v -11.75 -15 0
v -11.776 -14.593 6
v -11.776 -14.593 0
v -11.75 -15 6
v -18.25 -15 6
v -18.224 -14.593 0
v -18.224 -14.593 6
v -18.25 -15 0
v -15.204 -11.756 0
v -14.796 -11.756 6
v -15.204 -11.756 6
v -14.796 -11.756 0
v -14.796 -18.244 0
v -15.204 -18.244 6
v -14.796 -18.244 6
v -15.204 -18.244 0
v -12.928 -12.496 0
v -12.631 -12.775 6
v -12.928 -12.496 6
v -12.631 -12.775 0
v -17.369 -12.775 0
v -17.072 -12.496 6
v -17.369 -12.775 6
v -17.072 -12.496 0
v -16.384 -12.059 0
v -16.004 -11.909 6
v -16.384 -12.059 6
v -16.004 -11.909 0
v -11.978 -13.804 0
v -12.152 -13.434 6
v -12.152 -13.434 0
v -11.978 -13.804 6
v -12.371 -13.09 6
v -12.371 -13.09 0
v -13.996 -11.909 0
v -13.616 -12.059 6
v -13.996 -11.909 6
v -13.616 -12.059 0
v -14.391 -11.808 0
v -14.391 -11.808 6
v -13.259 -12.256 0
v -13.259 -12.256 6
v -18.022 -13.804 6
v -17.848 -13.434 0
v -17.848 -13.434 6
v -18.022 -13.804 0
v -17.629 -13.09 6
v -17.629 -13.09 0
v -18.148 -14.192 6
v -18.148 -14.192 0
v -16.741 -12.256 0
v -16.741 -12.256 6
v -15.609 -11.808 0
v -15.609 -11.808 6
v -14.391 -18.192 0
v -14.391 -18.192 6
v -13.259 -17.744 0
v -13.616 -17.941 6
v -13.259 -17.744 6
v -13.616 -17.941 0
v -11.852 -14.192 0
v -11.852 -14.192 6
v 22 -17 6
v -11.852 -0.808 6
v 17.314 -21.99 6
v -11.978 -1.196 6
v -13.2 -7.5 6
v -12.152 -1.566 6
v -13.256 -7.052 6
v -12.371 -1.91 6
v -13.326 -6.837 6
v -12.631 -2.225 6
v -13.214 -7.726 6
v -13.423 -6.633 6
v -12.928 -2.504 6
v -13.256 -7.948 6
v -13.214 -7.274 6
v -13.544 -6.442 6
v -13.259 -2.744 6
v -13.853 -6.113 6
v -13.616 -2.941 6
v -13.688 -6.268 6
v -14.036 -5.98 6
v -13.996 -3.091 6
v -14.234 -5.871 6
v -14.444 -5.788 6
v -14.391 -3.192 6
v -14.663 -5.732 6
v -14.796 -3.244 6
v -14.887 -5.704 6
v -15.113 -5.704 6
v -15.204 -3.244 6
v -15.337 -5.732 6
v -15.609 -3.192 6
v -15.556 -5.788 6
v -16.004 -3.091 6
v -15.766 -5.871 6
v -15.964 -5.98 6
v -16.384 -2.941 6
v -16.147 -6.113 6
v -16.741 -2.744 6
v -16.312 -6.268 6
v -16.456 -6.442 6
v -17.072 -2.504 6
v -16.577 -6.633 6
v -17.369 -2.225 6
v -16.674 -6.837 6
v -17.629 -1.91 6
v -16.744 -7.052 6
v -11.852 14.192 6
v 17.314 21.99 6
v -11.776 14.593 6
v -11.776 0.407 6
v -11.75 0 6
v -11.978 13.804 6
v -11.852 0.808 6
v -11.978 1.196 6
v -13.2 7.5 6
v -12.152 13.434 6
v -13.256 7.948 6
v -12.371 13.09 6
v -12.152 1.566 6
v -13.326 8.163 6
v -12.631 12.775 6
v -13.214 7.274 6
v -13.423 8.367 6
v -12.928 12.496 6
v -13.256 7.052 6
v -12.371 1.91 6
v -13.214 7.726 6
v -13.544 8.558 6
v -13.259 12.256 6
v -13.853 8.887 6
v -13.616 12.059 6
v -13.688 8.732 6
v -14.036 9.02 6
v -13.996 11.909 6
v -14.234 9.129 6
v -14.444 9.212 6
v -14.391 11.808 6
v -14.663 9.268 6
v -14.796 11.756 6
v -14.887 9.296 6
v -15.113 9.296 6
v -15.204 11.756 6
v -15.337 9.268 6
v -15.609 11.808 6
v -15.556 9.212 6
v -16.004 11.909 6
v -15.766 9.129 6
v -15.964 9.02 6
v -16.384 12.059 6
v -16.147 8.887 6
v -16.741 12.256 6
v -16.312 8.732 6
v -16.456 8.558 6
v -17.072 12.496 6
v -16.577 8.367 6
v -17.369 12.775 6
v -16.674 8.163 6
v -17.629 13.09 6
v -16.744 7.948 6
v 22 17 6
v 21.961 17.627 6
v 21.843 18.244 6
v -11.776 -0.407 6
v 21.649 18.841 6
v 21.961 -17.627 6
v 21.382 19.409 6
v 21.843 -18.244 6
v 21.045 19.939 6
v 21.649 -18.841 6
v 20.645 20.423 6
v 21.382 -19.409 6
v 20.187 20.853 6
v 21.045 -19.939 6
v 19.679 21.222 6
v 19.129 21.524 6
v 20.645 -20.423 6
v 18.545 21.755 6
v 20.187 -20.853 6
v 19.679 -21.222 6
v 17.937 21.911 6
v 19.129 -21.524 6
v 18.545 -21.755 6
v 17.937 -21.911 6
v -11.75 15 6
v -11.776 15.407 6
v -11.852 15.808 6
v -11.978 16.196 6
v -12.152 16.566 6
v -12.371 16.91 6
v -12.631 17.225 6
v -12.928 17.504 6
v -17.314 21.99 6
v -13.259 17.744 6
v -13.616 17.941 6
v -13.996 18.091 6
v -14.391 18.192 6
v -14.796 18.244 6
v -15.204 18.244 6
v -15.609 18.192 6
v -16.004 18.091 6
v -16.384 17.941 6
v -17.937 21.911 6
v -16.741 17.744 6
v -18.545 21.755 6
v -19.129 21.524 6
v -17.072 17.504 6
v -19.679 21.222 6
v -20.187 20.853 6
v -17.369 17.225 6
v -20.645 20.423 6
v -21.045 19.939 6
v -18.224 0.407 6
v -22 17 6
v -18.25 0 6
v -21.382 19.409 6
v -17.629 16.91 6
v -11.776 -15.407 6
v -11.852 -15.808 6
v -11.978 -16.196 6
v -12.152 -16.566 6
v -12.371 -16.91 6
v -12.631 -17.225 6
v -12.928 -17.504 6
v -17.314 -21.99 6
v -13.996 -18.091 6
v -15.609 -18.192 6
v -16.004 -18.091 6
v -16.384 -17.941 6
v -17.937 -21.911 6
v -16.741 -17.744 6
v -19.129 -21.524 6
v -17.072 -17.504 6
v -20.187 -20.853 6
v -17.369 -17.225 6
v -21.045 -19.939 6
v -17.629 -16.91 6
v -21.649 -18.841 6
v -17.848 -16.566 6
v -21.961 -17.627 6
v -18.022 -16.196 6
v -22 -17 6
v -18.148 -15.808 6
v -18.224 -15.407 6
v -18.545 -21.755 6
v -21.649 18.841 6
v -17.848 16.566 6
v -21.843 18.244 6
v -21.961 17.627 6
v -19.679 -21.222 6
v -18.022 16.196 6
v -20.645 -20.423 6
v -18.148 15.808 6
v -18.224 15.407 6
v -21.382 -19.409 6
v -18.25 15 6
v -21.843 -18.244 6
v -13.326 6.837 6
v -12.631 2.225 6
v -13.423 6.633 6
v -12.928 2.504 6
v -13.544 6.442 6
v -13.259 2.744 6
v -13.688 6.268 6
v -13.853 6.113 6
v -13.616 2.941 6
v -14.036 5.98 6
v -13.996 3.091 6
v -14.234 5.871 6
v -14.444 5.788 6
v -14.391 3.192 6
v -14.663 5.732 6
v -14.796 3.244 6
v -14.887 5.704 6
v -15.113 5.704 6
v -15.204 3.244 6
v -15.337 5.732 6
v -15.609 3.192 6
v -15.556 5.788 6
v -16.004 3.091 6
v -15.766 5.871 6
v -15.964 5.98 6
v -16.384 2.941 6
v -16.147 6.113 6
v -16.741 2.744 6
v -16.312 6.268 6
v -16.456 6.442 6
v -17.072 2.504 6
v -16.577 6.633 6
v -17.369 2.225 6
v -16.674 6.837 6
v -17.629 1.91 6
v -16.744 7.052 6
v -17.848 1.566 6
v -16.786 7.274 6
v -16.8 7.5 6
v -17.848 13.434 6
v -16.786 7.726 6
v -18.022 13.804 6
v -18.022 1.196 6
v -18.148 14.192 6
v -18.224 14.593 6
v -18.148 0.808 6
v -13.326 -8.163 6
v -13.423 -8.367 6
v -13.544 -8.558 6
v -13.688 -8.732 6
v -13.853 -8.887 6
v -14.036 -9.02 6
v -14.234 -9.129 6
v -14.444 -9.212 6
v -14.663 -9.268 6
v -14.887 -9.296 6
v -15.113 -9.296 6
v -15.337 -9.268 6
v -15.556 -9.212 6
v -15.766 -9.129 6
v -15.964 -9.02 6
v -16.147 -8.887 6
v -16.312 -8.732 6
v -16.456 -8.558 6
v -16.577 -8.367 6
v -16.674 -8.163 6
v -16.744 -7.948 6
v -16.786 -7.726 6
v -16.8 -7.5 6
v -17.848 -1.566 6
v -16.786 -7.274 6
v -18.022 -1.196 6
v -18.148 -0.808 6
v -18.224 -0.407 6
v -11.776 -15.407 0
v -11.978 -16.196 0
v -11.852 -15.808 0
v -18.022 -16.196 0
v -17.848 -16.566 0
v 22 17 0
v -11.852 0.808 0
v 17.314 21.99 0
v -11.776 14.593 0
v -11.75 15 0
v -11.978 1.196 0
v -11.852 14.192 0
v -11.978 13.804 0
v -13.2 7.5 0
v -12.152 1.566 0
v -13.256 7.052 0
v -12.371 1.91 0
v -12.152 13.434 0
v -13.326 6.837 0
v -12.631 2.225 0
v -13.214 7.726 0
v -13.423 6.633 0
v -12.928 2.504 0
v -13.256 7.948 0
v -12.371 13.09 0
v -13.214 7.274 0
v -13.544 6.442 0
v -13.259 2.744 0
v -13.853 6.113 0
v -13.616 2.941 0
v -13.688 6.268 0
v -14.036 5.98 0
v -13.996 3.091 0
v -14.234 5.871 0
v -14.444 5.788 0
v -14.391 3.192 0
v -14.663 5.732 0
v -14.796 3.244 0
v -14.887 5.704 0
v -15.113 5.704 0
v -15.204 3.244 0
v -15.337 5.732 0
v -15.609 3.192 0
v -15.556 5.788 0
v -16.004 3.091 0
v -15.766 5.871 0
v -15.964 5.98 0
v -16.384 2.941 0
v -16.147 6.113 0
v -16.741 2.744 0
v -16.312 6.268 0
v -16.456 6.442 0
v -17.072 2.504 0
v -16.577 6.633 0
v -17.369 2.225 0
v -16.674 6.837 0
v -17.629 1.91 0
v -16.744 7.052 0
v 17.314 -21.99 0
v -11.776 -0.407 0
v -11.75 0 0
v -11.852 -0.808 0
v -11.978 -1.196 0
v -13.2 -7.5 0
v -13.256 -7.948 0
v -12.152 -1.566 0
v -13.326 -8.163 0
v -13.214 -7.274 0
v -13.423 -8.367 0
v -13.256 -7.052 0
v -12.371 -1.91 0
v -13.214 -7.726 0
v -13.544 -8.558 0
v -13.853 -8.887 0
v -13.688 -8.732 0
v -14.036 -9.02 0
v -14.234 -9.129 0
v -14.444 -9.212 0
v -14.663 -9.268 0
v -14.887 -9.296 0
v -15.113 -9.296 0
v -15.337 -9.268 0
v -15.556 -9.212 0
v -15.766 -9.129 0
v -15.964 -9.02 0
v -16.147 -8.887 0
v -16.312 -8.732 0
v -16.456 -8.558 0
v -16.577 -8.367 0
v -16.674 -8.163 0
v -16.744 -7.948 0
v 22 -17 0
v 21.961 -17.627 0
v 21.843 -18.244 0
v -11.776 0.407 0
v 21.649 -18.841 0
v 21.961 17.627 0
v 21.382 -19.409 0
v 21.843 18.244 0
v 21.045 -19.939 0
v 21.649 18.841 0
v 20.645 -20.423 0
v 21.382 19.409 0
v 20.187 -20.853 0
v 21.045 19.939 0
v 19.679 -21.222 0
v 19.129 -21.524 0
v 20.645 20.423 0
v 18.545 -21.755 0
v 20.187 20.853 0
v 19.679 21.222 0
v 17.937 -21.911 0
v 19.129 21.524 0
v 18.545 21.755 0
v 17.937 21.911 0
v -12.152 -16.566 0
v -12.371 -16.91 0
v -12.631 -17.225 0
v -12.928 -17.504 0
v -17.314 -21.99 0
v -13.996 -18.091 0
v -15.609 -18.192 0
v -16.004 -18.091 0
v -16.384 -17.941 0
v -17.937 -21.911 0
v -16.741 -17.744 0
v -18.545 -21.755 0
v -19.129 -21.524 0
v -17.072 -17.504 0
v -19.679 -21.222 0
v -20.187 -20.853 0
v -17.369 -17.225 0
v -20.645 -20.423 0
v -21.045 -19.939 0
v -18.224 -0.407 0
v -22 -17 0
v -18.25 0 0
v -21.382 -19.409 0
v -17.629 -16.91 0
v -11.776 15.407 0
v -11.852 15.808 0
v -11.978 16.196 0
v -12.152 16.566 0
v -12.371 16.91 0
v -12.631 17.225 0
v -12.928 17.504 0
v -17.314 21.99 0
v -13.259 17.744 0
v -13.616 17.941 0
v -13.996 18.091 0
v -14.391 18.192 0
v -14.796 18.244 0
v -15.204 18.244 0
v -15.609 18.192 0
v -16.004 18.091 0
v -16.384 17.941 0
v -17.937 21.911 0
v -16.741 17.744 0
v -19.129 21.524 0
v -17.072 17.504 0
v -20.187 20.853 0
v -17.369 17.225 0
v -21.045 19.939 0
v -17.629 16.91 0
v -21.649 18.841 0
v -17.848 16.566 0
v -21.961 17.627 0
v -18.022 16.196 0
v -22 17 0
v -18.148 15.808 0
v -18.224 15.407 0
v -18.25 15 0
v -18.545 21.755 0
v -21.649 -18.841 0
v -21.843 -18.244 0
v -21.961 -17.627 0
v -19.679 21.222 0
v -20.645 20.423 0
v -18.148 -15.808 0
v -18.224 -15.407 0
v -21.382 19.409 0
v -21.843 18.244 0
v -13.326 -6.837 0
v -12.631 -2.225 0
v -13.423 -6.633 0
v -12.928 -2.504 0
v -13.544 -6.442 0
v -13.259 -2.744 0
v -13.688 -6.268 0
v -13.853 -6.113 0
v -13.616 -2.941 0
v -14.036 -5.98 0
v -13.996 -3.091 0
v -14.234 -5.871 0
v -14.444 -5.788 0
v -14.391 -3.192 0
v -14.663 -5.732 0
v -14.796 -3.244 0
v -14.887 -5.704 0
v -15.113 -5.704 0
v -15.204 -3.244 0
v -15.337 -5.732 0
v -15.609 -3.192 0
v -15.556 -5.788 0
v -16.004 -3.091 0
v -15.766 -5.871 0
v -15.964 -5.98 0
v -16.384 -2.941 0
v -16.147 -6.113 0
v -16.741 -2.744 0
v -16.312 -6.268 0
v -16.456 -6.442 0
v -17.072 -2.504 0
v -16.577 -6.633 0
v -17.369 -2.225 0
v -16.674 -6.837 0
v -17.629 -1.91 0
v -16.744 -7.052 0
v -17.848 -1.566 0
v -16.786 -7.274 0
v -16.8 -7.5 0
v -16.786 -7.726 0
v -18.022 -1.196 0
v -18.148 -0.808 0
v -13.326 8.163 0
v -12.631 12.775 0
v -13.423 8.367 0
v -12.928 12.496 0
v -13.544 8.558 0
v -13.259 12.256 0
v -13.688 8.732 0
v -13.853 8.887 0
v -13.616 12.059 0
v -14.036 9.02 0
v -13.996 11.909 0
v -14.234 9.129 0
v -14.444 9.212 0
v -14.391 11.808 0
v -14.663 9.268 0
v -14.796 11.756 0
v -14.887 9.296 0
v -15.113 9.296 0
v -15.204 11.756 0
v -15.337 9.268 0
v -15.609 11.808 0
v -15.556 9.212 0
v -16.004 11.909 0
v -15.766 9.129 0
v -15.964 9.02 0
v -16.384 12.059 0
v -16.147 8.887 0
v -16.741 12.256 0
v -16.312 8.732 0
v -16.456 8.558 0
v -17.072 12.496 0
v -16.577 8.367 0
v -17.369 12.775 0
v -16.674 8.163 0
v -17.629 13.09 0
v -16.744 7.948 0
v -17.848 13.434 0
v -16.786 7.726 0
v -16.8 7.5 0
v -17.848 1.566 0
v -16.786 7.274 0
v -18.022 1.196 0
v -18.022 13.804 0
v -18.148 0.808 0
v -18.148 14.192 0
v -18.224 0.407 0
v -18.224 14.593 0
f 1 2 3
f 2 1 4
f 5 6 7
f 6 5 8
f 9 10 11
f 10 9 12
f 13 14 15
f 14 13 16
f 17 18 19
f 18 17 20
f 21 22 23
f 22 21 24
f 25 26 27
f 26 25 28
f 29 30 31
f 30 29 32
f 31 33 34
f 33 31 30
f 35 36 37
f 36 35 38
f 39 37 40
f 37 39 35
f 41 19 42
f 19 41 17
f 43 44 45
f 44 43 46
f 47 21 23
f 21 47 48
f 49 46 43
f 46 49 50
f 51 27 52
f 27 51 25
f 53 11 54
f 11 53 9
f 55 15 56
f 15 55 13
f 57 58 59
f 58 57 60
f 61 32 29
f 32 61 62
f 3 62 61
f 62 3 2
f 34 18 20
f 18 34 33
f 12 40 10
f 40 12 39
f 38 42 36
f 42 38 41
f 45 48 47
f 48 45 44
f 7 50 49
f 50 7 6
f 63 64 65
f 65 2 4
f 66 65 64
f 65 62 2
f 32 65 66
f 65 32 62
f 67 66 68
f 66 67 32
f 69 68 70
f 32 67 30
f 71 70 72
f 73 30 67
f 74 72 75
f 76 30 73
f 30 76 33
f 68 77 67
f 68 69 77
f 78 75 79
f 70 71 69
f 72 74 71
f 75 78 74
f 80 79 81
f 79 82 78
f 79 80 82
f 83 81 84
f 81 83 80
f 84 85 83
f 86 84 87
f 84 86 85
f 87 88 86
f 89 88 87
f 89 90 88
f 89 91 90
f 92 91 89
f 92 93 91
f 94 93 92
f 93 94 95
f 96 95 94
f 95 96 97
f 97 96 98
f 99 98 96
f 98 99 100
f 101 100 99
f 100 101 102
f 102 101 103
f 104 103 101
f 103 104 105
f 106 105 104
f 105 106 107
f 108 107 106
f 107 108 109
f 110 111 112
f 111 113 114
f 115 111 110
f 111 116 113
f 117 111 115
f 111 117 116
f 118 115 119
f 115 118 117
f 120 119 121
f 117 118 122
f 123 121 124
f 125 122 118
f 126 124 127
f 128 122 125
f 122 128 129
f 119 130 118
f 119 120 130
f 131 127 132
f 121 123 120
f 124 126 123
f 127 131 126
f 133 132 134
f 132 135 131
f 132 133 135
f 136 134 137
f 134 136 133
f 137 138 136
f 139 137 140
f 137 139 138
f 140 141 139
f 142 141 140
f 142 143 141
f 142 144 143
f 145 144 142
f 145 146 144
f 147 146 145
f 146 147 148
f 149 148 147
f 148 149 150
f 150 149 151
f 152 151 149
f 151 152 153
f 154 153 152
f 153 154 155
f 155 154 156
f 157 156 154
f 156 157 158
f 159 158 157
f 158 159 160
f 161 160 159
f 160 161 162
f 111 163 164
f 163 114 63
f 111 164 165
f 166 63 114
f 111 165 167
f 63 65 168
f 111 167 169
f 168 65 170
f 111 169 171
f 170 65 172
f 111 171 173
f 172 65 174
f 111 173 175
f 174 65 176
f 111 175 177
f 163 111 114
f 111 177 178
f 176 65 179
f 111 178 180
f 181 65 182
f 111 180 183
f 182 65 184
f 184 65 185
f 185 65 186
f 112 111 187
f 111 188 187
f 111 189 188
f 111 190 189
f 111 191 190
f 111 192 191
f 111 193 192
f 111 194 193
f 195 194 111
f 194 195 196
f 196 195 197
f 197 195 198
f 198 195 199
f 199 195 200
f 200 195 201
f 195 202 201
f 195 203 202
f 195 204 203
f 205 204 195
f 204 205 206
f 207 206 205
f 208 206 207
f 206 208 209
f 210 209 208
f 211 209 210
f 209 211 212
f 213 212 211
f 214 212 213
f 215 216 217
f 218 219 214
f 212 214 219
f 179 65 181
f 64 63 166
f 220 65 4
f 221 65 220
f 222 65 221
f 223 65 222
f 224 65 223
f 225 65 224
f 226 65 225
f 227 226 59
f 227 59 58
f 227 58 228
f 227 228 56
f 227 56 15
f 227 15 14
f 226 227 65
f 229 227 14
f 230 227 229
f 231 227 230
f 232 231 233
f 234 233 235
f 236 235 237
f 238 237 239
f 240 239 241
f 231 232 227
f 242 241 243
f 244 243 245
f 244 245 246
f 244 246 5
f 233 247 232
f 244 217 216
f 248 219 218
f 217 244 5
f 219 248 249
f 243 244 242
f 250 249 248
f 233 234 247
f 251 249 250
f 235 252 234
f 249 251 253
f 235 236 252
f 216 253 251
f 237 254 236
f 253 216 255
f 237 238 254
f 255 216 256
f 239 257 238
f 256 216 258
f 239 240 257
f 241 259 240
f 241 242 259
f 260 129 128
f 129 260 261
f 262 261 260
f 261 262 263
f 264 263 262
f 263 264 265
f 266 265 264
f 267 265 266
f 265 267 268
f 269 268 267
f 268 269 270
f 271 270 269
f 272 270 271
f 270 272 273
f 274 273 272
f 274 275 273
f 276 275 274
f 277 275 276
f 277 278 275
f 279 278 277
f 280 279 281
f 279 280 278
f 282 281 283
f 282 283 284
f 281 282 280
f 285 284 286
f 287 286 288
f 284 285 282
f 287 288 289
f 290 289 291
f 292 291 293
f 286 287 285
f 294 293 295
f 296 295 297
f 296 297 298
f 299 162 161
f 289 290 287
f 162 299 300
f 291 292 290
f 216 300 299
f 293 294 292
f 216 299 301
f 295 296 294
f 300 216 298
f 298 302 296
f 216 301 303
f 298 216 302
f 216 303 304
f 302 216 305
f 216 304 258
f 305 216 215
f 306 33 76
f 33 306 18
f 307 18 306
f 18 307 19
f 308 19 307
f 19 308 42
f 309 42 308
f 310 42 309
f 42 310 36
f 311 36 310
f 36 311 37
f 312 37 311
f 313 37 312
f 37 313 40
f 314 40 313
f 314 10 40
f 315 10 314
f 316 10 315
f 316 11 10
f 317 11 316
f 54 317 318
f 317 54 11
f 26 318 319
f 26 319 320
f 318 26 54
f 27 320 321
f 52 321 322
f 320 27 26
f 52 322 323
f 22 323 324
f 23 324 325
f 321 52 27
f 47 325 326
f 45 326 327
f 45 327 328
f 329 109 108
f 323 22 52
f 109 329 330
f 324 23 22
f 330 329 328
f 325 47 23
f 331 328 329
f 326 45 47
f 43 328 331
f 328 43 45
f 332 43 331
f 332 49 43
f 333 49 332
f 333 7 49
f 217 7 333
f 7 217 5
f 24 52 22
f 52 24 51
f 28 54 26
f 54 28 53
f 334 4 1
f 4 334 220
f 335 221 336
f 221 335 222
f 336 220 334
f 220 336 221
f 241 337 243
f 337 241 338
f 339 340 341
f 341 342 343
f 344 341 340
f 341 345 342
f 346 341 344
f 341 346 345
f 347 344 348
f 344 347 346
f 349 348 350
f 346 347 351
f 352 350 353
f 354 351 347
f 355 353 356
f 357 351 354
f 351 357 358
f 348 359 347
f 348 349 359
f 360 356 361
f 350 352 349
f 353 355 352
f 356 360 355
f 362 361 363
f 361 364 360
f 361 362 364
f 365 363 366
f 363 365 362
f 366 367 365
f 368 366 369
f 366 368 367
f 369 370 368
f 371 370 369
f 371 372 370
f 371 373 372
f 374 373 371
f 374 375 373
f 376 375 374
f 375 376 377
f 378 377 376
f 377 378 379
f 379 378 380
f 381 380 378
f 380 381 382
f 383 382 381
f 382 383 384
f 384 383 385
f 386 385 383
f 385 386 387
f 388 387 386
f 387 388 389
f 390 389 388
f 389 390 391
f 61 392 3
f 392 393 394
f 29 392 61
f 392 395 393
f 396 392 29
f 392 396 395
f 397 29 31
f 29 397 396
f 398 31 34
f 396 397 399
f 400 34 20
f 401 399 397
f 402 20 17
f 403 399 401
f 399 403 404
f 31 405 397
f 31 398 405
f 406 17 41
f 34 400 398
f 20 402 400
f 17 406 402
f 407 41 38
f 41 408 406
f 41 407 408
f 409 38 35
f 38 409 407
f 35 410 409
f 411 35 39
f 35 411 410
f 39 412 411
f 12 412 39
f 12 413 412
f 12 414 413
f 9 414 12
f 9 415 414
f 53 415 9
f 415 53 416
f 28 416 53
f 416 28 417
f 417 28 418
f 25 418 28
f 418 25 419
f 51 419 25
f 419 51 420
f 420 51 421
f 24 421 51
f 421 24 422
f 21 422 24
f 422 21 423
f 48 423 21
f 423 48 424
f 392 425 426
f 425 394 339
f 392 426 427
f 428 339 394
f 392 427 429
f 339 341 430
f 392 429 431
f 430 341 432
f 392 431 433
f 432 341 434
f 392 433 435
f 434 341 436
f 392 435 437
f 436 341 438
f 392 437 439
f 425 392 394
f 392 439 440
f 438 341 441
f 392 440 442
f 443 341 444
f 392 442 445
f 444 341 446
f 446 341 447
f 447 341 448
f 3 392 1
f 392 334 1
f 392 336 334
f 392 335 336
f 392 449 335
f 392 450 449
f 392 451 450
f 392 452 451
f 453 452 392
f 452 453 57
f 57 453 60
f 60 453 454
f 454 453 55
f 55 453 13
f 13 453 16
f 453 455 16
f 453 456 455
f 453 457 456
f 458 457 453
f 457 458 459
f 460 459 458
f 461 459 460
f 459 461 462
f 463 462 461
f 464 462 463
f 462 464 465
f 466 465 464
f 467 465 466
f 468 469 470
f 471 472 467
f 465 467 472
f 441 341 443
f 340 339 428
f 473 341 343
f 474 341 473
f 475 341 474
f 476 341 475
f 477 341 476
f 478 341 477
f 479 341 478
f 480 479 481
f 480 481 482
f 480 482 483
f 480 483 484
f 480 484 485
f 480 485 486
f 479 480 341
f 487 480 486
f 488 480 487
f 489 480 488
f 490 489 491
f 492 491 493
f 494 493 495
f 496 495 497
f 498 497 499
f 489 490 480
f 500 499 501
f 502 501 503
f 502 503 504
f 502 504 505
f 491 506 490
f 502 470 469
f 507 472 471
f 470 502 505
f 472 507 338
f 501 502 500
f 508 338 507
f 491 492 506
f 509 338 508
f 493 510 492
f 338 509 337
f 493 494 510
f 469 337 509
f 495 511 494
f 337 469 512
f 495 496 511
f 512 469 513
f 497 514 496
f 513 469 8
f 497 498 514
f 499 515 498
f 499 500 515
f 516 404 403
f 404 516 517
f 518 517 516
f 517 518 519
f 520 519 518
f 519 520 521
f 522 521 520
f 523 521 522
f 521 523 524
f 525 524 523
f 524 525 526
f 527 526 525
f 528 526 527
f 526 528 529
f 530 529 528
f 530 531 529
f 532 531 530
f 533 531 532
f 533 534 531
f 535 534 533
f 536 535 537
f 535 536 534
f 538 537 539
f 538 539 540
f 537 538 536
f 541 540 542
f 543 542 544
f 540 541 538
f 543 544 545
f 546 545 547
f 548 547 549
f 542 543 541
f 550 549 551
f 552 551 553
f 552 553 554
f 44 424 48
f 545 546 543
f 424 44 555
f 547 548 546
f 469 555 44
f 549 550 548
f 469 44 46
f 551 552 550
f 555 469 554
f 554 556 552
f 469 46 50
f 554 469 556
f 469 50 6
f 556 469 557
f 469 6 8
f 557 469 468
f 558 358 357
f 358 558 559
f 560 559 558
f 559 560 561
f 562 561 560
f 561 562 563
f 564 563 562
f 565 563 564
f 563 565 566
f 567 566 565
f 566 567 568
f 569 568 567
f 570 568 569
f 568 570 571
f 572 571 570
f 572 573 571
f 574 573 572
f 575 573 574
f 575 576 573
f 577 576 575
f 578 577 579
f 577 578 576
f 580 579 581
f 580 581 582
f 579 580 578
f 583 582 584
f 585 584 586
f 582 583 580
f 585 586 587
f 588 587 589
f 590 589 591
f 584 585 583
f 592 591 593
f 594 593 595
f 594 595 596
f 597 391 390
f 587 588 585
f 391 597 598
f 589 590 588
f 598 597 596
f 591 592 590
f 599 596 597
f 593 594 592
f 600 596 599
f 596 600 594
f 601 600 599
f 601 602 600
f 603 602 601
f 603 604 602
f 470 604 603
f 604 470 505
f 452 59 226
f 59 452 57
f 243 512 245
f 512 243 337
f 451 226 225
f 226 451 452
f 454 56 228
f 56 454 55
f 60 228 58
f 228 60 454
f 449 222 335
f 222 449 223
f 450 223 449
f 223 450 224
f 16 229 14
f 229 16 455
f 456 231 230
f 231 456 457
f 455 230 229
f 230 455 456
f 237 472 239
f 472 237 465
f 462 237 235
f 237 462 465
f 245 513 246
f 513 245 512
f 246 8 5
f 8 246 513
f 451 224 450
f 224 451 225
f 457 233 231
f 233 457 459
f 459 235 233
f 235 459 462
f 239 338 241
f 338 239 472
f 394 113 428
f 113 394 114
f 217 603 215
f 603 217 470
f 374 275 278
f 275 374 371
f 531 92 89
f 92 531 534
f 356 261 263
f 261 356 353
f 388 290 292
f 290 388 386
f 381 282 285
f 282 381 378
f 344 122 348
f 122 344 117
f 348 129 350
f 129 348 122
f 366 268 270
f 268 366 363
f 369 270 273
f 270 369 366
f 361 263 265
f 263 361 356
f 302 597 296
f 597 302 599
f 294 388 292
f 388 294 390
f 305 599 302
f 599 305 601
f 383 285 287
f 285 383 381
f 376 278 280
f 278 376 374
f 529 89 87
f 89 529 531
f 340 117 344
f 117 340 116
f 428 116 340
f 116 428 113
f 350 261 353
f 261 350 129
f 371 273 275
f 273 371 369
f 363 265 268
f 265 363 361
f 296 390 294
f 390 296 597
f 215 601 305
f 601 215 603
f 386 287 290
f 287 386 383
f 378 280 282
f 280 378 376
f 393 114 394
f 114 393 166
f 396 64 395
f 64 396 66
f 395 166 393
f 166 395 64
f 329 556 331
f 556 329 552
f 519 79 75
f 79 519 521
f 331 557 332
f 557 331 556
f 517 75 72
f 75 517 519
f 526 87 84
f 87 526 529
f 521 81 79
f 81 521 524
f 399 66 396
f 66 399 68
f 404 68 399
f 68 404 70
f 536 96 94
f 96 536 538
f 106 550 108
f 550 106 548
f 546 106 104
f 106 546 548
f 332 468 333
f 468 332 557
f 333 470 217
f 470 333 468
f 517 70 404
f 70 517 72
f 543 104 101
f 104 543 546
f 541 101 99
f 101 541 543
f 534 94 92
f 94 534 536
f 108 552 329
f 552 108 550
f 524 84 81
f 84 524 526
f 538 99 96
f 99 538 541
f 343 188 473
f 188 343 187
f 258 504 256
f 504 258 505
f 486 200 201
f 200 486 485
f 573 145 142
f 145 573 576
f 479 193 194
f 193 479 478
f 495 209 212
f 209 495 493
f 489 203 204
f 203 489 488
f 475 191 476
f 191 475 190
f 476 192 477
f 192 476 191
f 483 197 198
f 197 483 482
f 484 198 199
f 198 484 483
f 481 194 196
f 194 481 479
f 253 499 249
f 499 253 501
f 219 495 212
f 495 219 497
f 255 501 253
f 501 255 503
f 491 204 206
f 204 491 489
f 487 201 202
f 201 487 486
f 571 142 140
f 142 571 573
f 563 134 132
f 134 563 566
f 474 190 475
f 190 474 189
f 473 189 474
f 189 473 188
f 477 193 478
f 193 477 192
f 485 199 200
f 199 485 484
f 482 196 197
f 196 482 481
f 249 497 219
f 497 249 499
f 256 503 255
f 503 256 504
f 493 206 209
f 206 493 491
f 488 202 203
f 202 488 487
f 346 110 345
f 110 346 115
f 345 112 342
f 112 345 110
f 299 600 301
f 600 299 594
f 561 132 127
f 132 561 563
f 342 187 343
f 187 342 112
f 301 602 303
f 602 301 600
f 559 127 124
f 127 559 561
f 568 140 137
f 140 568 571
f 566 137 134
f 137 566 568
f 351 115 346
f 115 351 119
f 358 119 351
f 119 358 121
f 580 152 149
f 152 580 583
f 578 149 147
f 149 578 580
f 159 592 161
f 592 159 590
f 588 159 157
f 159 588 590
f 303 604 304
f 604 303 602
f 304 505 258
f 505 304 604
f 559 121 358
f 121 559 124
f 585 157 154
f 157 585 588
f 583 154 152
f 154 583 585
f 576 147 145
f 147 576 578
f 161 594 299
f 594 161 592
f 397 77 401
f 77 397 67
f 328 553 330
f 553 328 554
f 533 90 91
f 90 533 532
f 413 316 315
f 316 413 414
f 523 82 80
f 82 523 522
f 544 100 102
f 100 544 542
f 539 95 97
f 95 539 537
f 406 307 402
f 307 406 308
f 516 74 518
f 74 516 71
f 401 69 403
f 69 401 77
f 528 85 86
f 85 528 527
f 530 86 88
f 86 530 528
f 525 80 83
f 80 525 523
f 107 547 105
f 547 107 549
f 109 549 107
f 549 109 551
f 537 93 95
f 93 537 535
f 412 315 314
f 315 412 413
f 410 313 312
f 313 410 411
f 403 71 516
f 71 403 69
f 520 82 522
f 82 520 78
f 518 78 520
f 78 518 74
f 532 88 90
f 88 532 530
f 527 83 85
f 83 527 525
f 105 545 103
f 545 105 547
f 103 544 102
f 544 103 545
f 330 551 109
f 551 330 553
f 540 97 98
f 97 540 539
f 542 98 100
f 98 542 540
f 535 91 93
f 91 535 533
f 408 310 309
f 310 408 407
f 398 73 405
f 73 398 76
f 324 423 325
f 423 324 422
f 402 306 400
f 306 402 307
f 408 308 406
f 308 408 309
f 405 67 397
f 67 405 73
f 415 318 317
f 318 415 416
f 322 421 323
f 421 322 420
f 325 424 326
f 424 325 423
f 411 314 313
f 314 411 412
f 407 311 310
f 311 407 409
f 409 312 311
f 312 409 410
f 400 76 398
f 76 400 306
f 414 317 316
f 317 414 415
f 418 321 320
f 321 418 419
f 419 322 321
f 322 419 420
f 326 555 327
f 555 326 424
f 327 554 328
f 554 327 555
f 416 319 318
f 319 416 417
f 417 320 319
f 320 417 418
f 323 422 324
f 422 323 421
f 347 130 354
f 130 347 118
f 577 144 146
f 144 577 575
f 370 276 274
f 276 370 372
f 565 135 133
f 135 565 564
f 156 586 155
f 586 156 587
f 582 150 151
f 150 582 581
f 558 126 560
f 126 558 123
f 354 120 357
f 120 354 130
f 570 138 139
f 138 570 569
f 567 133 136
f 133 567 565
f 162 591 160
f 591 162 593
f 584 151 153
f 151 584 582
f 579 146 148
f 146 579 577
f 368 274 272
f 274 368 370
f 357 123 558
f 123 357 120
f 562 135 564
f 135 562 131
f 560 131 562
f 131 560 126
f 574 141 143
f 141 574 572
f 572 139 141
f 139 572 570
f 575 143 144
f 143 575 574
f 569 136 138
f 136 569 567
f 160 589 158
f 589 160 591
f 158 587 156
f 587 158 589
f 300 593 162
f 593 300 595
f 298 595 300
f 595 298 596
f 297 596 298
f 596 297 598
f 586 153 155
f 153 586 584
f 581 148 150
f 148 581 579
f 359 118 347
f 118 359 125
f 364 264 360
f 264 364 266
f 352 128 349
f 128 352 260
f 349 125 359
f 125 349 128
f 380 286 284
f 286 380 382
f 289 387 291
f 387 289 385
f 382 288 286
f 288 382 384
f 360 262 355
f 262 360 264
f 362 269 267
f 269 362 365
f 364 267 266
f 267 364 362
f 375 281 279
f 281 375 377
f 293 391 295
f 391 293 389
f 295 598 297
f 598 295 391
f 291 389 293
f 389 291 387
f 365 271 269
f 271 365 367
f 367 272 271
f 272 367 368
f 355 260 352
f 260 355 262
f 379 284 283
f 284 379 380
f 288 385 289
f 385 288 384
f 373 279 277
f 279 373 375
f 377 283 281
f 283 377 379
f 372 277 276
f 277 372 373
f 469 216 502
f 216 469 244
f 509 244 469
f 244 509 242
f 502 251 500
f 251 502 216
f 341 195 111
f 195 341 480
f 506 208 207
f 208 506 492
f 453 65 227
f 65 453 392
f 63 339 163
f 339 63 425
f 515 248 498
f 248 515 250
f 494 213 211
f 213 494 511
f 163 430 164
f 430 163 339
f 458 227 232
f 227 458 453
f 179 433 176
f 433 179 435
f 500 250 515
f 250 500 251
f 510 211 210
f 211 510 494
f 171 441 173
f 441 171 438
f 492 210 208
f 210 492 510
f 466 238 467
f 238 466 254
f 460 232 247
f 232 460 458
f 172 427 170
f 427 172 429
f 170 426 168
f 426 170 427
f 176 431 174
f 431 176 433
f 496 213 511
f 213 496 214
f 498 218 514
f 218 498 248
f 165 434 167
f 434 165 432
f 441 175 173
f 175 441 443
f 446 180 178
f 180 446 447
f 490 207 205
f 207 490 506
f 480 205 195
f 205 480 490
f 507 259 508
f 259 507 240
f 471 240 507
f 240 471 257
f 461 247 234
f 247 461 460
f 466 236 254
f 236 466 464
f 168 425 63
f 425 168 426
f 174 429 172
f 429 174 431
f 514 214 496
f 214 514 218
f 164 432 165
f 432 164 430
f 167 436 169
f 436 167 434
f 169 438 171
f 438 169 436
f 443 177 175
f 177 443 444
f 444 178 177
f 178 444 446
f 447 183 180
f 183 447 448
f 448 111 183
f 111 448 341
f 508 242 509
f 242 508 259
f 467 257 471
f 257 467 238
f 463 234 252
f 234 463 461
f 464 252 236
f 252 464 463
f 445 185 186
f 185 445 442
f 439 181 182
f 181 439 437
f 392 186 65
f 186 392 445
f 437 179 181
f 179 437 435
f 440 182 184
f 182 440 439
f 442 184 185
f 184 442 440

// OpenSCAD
$fn = 50;


difference() {
	union() {
		hull() {
			translate(v = [-17.0000000000, 17.0000000000, 0]) {
				cylinder(h = 6, r = 5);
			}
			translate(v = [17.0000000000, 17.0000000000, 0]) {
				cylinder(h = 6, r = 5);
			}
			translate(v = [-17.0000000000, -17.0000000000, 0]) {
				cylinder(h = 6, r = 5);
			}
			translate(v = [17.0000000000, -17.0000000000, 0]) {
				cylinder(h = 6, r = 5);
			}
		}
	}
	union() {
		translate(v = [-15.0000000000, -15.0000000000, 0]) {
			cylinder(h = 6, r = 3.2500000000);
		}
		translate(v = [-15.0000000000, 0.0000000000, 0]) {
			cylinder(h = 6, r = 3.2500000000);
		}
		translate(v = [-15.0000000000, 15.0000000000, 0]) {
			cylinder(h = 6, r = 3.2500000000);
		}
		translate(v = [-15.0000000000, -15.0000000000, 0]) {
			cylinder(h = 6, r = 1.8000000000);
		}
		translate(v = [-15.0000000000, -7.5000000000, 0]) {
			cylinder(h = 6, r = 1.8000000000);
		}
		translate(v = [-15.0000000000, 0.0000000000, 0]) {
			cylinder(h = 6, r = 1.8000000000);
		}
		translate(v = [-15.0000000000, 7.5000000000, 0]) {
			cylinder(h = 6, r = 1.8000000000);
		}
		translate(v = [-15.0000000000, 15.0000000000, 0]) {
			cylinder(h = 6, r = 1.8000000000);
		}
		translate(v = [-15.0000000000, -15.0000000000, 0]) {
			cylinder(h = 6, r = 1.8000000000);
		}
		translate(v = [-15.0000000000, -7.5000000000, 0]) {
			cylinder(h = 6, r = 1.8000000000);
		}
		translate(v = [-15.0000000000, 0.0000000000, 0]) {
			cylinder(h = 6, r = 1.8000000000);
		}
		translate(v = [-15.0000000000, 7.5000000000, 0]) {
			cylinder(h = 6, r = 1.8000000000);
		}
		translate(v = [-15.0000000000, 15.0000000000, 0]) {
			cylinder(h = 6, r = 1.8000000000);
		}
		translate(v = [-15.0000000000, -15.0000000000, 0]) {
			cylinder(h = 6, r = 1.8000000000);
		}
		translate(v = [-15.0000000000, -7.5000000000, 0]) {
			cylinder(h = 6, r = 1.8000000000);
		}
		translate(v = [-15.0000000000, 0.0000000000, 0]) {
			cylinder(h = 6, r = 1.8000000000);
		}
		translate(v = [-15.0000000000, 7.5000000000, 0]) {
			cylinder(h = 6, r = 1.8000000000);
		}
		translate(v = [-15.0000000000, 15.0000000000, 0]) {
			cylinder(h = 6, r = 1.8000000000);
		}
	}
}
